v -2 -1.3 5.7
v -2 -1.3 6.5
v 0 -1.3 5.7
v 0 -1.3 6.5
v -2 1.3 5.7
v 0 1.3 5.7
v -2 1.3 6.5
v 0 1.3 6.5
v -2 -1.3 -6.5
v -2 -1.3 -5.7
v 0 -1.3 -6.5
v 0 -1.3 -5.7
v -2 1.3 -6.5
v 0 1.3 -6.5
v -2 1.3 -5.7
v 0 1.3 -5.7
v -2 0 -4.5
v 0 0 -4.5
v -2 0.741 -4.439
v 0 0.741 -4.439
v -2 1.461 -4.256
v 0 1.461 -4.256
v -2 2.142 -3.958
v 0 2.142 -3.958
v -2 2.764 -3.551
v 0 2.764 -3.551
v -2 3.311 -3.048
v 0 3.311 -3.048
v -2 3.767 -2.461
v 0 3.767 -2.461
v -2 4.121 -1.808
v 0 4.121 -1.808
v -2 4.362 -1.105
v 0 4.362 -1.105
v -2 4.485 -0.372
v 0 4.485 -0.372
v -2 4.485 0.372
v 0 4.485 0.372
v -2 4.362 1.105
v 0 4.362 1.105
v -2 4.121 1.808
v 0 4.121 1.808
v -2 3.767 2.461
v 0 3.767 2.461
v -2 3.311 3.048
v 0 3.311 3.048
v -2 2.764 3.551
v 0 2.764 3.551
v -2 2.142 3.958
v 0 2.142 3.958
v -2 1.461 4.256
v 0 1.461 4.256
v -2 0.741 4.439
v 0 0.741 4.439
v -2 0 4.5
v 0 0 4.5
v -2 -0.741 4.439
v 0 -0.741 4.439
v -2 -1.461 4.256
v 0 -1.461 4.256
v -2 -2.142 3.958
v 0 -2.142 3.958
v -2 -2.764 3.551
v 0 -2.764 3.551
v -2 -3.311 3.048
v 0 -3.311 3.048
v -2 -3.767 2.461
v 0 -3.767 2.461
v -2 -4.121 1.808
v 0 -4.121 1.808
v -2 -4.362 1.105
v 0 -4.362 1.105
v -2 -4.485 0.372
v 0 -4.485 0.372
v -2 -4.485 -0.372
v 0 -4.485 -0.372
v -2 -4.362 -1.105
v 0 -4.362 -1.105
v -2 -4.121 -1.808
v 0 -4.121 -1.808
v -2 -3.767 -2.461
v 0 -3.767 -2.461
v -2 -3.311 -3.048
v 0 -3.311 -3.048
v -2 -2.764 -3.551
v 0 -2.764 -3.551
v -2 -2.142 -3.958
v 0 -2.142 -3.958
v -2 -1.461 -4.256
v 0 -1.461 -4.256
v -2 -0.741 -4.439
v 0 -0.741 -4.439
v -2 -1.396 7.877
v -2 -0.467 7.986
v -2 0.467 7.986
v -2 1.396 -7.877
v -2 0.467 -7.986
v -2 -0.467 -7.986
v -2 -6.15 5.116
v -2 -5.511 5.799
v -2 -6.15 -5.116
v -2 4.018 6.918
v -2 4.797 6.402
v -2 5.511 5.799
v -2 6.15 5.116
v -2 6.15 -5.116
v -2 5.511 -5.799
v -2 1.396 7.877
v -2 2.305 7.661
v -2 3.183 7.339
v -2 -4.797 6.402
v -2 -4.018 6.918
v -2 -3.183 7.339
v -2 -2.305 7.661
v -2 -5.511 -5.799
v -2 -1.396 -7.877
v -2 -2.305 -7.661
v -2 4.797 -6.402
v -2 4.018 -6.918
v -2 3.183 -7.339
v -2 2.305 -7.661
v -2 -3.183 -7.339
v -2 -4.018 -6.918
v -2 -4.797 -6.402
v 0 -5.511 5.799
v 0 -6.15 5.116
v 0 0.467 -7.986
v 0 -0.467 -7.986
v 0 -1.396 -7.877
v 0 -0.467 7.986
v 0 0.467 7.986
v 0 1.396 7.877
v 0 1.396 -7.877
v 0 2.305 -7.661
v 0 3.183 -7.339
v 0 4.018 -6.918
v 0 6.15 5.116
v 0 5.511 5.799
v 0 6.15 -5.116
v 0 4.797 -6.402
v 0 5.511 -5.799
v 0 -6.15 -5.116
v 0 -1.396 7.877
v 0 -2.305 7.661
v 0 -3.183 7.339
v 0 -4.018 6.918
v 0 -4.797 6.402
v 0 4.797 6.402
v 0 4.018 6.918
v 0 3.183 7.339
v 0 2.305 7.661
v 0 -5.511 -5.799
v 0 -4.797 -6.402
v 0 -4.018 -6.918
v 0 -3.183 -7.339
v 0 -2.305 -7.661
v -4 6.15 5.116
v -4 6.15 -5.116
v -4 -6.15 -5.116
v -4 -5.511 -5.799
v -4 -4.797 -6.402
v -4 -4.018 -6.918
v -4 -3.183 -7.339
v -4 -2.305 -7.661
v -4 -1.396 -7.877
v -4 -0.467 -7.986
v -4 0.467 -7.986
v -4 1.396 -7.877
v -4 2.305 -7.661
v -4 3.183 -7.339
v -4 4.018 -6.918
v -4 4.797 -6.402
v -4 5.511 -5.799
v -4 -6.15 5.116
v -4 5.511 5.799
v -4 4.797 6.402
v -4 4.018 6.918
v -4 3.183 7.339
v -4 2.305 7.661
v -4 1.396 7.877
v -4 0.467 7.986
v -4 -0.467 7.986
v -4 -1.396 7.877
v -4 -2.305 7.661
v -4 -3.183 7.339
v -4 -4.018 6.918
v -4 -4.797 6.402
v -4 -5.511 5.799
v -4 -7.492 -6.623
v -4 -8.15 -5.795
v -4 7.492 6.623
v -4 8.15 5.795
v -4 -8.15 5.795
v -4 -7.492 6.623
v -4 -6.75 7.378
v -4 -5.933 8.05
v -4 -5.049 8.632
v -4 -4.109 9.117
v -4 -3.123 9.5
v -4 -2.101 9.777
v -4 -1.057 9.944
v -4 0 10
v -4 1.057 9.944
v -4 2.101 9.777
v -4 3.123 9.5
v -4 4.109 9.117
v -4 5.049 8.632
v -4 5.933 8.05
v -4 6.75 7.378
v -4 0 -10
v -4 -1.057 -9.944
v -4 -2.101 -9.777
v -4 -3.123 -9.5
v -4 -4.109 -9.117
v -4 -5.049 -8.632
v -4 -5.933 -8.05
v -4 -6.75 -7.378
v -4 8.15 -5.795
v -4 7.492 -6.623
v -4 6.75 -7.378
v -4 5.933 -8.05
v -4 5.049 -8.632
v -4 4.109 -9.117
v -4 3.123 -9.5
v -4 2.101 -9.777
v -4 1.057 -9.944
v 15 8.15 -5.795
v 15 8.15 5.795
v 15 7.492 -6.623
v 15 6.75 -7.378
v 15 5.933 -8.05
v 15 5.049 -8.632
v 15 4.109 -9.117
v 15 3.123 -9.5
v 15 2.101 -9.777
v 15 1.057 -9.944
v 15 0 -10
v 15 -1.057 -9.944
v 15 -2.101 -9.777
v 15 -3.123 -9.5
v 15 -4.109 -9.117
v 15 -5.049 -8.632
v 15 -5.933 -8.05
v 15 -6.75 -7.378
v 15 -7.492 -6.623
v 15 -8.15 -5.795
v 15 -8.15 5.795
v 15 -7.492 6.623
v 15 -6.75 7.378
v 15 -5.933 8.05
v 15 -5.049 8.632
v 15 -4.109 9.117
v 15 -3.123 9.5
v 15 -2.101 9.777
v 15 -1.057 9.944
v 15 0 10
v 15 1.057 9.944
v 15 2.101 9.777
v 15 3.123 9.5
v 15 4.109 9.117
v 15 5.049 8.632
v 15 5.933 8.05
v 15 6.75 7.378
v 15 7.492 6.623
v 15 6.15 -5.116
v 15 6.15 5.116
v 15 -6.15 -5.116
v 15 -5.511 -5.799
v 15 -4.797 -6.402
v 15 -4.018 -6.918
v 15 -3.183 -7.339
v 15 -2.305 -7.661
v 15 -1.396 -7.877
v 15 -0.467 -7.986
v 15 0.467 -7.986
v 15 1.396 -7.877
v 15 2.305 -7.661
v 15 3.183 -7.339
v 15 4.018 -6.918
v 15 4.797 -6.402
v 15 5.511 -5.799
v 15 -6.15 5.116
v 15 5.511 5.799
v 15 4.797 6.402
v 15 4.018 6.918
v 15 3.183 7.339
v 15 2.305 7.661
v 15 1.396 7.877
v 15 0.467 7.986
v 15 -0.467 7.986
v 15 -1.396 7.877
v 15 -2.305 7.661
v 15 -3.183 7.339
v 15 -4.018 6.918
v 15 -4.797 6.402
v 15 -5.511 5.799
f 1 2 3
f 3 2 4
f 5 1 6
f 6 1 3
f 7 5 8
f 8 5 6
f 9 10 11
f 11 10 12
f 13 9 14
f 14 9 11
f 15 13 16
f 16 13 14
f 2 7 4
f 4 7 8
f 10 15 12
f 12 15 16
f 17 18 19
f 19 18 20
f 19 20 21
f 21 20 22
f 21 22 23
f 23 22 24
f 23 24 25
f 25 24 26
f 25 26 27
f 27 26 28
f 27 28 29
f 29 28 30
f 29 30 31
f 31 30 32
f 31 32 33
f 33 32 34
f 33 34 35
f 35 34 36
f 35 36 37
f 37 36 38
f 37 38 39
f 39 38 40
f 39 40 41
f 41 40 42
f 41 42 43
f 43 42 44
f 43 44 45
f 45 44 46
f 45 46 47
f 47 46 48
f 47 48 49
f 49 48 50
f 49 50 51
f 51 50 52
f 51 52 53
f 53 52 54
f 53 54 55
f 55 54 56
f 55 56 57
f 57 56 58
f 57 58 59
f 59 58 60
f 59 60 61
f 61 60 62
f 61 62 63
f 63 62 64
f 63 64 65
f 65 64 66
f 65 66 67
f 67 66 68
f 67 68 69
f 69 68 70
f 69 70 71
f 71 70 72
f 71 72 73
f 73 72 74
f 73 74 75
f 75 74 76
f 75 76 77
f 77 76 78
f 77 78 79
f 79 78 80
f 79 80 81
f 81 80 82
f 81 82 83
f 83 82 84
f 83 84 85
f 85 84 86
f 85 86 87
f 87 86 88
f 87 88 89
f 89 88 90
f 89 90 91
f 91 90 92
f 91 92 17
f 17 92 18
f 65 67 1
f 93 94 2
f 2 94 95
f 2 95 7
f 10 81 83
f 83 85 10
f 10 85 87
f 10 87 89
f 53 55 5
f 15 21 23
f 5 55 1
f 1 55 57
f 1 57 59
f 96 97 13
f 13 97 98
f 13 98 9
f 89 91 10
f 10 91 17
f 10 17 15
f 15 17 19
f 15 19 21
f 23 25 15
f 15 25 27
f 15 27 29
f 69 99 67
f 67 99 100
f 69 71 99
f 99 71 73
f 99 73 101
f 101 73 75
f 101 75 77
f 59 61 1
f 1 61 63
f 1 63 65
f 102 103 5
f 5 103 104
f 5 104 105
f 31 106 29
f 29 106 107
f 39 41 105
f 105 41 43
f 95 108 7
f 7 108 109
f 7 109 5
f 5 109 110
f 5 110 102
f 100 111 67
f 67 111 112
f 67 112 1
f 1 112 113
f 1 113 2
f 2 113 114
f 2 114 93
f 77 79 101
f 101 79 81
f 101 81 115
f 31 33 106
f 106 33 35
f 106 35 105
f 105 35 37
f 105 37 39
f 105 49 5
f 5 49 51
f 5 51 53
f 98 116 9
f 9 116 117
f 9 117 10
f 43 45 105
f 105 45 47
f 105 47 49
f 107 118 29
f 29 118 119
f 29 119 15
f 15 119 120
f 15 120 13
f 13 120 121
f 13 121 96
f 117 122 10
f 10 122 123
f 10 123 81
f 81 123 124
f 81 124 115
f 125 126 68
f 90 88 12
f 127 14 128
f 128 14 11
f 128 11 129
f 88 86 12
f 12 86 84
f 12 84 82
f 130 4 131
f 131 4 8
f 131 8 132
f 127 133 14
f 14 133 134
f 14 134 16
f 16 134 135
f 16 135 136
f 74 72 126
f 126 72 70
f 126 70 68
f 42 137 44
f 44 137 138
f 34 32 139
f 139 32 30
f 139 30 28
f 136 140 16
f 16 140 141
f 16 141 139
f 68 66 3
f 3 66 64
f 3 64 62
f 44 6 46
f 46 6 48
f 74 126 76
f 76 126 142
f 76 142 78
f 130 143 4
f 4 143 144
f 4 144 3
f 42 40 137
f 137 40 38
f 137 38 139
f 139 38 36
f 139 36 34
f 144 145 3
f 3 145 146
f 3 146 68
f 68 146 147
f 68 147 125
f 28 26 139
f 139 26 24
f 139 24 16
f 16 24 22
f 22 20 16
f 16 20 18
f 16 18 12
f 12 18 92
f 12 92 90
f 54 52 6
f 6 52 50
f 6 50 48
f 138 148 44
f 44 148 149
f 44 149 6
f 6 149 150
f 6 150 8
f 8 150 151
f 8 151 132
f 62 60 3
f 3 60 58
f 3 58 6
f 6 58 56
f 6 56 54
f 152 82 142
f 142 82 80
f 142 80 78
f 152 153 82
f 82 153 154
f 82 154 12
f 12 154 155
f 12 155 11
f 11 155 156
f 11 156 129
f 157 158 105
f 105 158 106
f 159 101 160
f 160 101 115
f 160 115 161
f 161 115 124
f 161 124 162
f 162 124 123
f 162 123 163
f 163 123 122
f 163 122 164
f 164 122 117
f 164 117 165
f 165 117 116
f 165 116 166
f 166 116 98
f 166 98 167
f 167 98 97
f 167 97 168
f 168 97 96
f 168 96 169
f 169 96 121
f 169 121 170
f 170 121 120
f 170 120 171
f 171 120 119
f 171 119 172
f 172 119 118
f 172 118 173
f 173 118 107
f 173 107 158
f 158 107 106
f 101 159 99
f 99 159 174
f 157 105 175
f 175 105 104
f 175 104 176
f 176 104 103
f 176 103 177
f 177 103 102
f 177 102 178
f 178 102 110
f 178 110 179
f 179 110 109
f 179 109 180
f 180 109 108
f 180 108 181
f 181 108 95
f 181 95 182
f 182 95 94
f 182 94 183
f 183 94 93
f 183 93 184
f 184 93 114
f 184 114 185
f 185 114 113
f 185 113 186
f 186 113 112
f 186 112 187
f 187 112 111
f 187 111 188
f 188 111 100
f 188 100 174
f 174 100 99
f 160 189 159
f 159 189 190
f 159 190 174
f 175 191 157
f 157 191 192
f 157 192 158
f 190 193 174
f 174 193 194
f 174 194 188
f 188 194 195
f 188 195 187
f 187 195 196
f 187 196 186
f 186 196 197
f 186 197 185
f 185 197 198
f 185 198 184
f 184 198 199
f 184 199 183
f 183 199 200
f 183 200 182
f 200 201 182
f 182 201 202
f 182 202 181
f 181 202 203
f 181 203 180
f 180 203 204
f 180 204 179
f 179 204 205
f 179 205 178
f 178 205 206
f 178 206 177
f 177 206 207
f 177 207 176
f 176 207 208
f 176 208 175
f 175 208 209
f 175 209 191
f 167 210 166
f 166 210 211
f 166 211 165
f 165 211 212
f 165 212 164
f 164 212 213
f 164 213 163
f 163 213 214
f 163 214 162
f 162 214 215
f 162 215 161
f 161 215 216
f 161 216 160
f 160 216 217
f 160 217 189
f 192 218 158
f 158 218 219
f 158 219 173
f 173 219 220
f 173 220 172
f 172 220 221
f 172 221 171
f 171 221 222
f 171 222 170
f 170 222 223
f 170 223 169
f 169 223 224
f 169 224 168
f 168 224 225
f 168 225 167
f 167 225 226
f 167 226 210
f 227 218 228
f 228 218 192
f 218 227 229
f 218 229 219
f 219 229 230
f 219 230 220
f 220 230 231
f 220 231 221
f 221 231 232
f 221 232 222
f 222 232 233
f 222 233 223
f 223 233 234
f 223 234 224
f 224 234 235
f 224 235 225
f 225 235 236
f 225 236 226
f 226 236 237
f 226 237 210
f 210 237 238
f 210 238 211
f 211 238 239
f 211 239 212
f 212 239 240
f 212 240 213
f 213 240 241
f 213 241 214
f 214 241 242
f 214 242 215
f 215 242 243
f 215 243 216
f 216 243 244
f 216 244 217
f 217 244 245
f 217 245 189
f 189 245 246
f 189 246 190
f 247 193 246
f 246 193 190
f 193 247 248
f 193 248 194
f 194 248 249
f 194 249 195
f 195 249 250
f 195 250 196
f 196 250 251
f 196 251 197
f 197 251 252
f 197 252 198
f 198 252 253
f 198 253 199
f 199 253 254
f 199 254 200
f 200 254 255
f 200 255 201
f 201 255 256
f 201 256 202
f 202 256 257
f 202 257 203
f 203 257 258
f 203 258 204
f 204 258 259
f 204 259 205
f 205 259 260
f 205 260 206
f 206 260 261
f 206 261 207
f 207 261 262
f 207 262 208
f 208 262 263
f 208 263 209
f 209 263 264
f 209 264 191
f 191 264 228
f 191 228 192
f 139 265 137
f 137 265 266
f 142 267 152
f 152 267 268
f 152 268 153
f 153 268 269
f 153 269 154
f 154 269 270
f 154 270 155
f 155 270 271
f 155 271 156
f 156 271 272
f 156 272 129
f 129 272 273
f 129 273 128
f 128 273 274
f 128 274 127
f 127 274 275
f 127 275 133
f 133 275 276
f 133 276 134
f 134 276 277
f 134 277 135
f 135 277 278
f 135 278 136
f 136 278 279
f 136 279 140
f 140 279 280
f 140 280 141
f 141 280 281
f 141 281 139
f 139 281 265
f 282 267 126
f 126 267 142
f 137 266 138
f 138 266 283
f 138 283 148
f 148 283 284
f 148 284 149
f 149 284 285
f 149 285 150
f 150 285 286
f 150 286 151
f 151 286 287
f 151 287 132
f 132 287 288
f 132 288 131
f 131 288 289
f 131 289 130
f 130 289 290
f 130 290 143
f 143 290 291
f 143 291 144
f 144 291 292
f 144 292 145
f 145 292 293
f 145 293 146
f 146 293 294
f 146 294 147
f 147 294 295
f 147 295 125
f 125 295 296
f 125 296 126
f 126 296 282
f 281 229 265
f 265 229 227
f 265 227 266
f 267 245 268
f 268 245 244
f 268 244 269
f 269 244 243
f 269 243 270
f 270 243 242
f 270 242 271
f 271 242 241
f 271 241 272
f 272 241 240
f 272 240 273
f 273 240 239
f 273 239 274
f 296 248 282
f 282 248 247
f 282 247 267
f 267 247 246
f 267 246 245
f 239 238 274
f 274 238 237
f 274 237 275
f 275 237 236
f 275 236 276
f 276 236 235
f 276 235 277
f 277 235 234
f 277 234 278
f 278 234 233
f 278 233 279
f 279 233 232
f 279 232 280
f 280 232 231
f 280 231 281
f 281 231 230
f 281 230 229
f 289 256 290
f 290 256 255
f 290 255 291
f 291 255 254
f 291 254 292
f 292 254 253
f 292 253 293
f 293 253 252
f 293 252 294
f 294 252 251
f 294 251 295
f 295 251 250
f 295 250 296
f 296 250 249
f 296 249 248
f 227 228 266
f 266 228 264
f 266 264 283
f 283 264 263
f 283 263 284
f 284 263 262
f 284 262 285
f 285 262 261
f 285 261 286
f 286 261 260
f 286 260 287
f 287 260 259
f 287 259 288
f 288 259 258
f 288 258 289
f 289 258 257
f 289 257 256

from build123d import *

# Parameters (mm, degrees)
SKETCH_1_W        = 0.8
SKETCH_1_H        = 2.6
SKETCH_1_R        = 4.5
EXTRUDE_1_DEPTH   = 2
EXTRUDE_START     = -4
EXTRUDE_1_2_DEPTH = 19


# Read off the part's stored shape, not the designer's step: 拉伸-薄壁1
with BuildPart() as part:
    # 草图1 → Extrude 1 (new body)
    with BuildSketch(Plane(origin=(0, 0, 0), x_dir=(0, 0, -1), z_dir=(1, 0, 0))):
        with BuildLine():
            ThreePointArc((-5.116395215, 6.15), (-8, 0), (-5.116395215, -6.15))
            Line((-5.116395215, -6.15), (5.116395215, -6.15))
            ThreePointArc((5.116395215, -6.15), (7.243312837, -3.396236025), (8, 0))
            ThreePointArc((8, 0), (7.243312837, 3.396236025), (5.116395215, 6.15))
            Line((5.116395215, 6.15), (-5.116395215, 6.15))
        make_face()
        with Locations((-6.1, 0)):
            Rectangle(SKETCH_1_W, SKETCH_1_H, mode=Mode.SUBTRACT)
        Circle(SKETCH_1_R, mode=Mode.SUBTRACT)
        with Locations((6.1, 0)):
            Rectangle(SKETCH_1_W, SKETCH_1_H, mode=Mode.SUBTRACT)
    extrude(amount=-EXTRUDE_1_DEPTH)

    # Extrude 1 2 outline → Extrude 1 2 (add)
    with BuildSketch(Plane(origin=(0, 0, 0), x_dir=(0, 0, -1), z_dir=(1, 0, 0)).offset(EXTRUDE_START)):
        with BuildLine():
            Line((5.794609564, 8.15), (-5.794609564, 8.15))
            ThreePointArc((-5.794609564, 8.15), (-10, 0), (-5.794609564, -8.15))
            Line((-5.794609564, -8.15), (5.794609564, -8.15))
            ThreePointArc((5.794609564, -8.15), (10, 0), (5.794609564, 8.15))
        make_face()
        with BuildLine():
            ThreePointArc((-5.116395215, -6.15), (-8, 0), (-5.116395215, 6.15))
            Line((-5.116395215, 6.15), (5.116395215, 6.15))
            ThreePointArc((5.116395215, 6.15), (8, 0), (5.116395215, -6.15))
            Line((5.116395215, -6.15), (-5.116395215, -6.15))
        make_face(mode=Mode.SUBTRACT)
    extrude(amount=EXTRUDE_1_2_DEPTH)


solid = part.part
